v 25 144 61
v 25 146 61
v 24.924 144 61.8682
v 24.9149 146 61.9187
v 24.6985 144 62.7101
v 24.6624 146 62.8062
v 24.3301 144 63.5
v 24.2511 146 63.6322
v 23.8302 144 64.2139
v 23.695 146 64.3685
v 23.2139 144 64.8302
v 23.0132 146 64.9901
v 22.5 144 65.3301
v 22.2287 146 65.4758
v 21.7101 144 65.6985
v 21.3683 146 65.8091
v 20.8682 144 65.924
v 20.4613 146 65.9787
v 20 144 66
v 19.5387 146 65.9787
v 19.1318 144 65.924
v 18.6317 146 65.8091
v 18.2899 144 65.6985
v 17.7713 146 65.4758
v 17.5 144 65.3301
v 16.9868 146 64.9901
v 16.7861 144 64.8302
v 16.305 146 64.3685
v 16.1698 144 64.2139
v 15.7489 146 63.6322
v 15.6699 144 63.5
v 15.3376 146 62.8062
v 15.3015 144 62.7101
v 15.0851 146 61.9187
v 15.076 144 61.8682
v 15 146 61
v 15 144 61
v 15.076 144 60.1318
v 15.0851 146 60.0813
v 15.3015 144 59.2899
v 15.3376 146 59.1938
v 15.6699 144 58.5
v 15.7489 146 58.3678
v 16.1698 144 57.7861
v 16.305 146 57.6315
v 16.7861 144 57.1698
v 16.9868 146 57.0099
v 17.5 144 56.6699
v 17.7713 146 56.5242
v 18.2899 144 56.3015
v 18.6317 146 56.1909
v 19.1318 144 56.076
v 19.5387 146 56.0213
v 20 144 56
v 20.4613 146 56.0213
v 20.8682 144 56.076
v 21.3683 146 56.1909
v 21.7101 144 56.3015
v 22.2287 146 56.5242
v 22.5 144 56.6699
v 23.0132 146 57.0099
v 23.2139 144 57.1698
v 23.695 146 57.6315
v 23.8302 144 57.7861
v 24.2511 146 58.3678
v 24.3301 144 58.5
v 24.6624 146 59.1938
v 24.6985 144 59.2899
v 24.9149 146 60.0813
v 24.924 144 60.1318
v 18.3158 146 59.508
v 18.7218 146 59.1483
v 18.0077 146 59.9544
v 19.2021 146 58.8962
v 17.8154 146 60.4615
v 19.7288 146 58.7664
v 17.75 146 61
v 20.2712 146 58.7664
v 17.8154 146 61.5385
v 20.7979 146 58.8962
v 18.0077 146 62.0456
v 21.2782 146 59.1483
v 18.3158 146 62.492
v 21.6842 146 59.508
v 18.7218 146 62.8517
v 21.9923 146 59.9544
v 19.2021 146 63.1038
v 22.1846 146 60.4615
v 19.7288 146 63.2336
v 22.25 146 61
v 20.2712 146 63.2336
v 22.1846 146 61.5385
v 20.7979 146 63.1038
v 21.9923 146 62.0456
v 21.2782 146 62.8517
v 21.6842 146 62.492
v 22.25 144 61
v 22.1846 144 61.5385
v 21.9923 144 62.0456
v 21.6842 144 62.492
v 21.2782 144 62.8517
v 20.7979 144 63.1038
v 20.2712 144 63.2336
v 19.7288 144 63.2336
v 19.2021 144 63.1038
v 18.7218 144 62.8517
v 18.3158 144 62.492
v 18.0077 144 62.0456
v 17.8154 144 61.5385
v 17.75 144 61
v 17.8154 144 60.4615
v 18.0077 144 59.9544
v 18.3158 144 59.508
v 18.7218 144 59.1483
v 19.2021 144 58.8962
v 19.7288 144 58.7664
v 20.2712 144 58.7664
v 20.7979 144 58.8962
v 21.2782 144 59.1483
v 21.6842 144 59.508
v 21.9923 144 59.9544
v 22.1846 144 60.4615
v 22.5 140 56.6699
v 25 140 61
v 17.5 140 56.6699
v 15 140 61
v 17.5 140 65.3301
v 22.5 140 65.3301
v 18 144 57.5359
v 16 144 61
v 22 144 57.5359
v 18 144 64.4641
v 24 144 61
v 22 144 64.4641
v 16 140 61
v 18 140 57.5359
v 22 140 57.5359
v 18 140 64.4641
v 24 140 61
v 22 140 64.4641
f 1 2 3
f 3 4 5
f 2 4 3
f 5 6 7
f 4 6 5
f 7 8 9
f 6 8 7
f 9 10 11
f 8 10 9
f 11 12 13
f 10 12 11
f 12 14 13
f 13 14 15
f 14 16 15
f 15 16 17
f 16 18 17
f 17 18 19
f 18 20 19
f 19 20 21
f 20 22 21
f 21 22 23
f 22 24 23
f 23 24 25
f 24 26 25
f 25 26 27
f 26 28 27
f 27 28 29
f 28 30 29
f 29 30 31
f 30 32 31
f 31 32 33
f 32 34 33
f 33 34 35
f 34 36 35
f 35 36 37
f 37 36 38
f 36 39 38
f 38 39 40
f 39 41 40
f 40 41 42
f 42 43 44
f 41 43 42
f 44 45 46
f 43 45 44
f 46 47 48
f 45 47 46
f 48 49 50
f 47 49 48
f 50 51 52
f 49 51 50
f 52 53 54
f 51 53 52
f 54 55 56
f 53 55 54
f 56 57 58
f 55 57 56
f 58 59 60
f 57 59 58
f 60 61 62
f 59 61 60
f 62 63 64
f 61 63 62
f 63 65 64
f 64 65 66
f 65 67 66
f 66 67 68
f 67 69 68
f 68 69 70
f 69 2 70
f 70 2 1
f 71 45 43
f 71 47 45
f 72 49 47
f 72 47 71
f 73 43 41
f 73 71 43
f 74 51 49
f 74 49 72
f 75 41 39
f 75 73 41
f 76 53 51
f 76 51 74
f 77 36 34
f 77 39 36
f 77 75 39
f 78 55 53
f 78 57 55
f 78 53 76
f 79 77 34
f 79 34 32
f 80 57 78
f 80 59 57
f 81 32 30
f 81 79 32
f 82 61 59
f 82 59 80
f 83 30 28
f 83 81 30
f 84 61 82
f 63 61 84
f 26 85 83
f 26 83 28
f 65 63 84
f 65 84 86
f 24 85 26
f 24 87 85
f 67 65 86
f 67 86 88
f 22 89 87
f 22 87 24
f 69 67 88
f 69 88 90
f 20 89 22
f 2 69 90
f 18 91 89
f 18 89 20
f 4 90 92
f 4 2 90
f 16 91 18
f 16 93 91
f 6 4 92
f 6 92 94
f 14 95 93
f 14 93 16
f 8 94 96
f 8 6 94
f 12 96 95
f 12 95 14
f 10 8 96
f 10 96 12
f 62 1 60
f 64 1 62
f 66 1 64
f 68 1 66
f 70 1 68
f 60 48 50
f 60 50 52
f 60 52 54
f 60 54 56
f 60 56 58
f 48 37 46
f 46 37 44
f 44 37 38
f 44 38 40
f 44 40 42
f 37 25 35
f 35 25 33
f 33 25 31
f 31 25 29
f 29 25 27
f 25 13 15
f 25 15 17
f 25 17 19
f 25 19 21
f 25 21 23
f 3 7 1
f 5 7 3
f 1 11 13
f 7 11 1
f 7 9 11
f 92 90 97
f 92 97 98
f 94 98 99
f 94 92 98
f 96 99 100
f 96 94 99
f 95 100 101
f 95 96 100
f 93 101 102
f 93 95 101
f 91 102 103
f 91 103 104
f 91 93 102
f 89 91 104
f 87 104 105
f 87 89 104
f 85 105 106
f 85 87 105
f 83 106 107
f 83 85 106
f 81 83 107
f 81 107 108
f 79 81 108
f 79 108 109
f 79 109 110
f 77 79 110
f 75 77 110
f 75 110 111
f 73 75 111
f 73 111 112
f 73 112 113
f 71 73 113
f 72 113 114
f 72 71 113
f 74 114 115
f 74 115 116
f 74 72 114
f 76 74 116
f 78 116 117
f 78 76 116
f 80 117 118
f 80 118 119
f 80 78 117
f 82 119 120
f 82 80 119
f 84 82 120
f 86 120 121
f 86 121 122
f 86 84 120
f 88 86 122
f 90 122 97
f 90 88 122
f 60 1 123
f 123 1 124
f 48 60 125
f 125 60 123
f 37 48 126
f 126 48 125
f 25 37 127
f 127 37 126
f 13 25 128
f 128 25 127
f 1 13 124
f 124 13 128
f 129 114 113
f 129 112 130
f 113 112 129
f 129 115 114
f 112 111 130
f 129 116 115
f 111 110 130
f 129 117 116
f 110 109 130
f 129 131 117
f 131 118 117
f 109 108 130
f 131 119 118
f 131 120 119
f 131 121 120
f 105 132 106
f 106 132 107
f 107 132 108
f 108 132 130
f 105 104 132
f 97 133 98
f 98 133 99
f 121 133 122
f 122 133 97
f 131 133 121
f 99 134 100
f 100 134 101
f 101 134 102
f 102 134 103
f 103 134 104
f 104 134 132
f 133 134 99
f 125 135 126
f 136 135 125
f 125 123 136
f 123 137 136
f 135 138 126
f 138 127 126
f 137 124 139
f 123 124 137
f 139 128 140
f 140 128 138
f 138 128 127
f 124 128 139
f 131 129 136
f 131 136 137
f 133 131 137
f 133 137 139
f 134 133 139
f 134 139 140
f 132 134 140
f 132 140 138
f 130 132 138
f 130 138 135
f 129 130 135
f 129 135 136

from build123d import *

# Parameters (mm, degrees)
SKETCH002_R   = 5
SKETCH002_R_2 = 2.25
PAD002_DEPTH  = 2
PAD003_DEPTH  = 4


with BuildPart() as part:
    # Sketch002 → Pad002 (new body)
    with BuildSketch(Plane.XZ):
        Circle(SKETCH002_R)
        Circle(SKETCH002_R_2, mode=Mode.SUBTRACT)
    extrude(amount=PAD002_DEPTH)

    # Sketch003 (on Face4 of Pad002) → Pad003 (join)
    with BuildSketch(Plane.XZ.offset(2)):
        Polygon((2.5, -4.330127), (5, 0), (2.5, 4.330127), (-2.5, 4.330127), (-5, 0), (-2.5, -4.330127), align=None)
        Polygon((-2, -3.464102), (2, -3.464102), (4, 0), (2, 3.464102), (-2, 3.464102), (-4, 0), align=None, mode=Mode.SUBTRACT)
    extrude(amount=PAD003_DEPTH)


with BuildPart() as part_1:
    # Body001 placement: moved
    add(part.part.moved(Location((20, 146, 61))))


solid = part_1.part
